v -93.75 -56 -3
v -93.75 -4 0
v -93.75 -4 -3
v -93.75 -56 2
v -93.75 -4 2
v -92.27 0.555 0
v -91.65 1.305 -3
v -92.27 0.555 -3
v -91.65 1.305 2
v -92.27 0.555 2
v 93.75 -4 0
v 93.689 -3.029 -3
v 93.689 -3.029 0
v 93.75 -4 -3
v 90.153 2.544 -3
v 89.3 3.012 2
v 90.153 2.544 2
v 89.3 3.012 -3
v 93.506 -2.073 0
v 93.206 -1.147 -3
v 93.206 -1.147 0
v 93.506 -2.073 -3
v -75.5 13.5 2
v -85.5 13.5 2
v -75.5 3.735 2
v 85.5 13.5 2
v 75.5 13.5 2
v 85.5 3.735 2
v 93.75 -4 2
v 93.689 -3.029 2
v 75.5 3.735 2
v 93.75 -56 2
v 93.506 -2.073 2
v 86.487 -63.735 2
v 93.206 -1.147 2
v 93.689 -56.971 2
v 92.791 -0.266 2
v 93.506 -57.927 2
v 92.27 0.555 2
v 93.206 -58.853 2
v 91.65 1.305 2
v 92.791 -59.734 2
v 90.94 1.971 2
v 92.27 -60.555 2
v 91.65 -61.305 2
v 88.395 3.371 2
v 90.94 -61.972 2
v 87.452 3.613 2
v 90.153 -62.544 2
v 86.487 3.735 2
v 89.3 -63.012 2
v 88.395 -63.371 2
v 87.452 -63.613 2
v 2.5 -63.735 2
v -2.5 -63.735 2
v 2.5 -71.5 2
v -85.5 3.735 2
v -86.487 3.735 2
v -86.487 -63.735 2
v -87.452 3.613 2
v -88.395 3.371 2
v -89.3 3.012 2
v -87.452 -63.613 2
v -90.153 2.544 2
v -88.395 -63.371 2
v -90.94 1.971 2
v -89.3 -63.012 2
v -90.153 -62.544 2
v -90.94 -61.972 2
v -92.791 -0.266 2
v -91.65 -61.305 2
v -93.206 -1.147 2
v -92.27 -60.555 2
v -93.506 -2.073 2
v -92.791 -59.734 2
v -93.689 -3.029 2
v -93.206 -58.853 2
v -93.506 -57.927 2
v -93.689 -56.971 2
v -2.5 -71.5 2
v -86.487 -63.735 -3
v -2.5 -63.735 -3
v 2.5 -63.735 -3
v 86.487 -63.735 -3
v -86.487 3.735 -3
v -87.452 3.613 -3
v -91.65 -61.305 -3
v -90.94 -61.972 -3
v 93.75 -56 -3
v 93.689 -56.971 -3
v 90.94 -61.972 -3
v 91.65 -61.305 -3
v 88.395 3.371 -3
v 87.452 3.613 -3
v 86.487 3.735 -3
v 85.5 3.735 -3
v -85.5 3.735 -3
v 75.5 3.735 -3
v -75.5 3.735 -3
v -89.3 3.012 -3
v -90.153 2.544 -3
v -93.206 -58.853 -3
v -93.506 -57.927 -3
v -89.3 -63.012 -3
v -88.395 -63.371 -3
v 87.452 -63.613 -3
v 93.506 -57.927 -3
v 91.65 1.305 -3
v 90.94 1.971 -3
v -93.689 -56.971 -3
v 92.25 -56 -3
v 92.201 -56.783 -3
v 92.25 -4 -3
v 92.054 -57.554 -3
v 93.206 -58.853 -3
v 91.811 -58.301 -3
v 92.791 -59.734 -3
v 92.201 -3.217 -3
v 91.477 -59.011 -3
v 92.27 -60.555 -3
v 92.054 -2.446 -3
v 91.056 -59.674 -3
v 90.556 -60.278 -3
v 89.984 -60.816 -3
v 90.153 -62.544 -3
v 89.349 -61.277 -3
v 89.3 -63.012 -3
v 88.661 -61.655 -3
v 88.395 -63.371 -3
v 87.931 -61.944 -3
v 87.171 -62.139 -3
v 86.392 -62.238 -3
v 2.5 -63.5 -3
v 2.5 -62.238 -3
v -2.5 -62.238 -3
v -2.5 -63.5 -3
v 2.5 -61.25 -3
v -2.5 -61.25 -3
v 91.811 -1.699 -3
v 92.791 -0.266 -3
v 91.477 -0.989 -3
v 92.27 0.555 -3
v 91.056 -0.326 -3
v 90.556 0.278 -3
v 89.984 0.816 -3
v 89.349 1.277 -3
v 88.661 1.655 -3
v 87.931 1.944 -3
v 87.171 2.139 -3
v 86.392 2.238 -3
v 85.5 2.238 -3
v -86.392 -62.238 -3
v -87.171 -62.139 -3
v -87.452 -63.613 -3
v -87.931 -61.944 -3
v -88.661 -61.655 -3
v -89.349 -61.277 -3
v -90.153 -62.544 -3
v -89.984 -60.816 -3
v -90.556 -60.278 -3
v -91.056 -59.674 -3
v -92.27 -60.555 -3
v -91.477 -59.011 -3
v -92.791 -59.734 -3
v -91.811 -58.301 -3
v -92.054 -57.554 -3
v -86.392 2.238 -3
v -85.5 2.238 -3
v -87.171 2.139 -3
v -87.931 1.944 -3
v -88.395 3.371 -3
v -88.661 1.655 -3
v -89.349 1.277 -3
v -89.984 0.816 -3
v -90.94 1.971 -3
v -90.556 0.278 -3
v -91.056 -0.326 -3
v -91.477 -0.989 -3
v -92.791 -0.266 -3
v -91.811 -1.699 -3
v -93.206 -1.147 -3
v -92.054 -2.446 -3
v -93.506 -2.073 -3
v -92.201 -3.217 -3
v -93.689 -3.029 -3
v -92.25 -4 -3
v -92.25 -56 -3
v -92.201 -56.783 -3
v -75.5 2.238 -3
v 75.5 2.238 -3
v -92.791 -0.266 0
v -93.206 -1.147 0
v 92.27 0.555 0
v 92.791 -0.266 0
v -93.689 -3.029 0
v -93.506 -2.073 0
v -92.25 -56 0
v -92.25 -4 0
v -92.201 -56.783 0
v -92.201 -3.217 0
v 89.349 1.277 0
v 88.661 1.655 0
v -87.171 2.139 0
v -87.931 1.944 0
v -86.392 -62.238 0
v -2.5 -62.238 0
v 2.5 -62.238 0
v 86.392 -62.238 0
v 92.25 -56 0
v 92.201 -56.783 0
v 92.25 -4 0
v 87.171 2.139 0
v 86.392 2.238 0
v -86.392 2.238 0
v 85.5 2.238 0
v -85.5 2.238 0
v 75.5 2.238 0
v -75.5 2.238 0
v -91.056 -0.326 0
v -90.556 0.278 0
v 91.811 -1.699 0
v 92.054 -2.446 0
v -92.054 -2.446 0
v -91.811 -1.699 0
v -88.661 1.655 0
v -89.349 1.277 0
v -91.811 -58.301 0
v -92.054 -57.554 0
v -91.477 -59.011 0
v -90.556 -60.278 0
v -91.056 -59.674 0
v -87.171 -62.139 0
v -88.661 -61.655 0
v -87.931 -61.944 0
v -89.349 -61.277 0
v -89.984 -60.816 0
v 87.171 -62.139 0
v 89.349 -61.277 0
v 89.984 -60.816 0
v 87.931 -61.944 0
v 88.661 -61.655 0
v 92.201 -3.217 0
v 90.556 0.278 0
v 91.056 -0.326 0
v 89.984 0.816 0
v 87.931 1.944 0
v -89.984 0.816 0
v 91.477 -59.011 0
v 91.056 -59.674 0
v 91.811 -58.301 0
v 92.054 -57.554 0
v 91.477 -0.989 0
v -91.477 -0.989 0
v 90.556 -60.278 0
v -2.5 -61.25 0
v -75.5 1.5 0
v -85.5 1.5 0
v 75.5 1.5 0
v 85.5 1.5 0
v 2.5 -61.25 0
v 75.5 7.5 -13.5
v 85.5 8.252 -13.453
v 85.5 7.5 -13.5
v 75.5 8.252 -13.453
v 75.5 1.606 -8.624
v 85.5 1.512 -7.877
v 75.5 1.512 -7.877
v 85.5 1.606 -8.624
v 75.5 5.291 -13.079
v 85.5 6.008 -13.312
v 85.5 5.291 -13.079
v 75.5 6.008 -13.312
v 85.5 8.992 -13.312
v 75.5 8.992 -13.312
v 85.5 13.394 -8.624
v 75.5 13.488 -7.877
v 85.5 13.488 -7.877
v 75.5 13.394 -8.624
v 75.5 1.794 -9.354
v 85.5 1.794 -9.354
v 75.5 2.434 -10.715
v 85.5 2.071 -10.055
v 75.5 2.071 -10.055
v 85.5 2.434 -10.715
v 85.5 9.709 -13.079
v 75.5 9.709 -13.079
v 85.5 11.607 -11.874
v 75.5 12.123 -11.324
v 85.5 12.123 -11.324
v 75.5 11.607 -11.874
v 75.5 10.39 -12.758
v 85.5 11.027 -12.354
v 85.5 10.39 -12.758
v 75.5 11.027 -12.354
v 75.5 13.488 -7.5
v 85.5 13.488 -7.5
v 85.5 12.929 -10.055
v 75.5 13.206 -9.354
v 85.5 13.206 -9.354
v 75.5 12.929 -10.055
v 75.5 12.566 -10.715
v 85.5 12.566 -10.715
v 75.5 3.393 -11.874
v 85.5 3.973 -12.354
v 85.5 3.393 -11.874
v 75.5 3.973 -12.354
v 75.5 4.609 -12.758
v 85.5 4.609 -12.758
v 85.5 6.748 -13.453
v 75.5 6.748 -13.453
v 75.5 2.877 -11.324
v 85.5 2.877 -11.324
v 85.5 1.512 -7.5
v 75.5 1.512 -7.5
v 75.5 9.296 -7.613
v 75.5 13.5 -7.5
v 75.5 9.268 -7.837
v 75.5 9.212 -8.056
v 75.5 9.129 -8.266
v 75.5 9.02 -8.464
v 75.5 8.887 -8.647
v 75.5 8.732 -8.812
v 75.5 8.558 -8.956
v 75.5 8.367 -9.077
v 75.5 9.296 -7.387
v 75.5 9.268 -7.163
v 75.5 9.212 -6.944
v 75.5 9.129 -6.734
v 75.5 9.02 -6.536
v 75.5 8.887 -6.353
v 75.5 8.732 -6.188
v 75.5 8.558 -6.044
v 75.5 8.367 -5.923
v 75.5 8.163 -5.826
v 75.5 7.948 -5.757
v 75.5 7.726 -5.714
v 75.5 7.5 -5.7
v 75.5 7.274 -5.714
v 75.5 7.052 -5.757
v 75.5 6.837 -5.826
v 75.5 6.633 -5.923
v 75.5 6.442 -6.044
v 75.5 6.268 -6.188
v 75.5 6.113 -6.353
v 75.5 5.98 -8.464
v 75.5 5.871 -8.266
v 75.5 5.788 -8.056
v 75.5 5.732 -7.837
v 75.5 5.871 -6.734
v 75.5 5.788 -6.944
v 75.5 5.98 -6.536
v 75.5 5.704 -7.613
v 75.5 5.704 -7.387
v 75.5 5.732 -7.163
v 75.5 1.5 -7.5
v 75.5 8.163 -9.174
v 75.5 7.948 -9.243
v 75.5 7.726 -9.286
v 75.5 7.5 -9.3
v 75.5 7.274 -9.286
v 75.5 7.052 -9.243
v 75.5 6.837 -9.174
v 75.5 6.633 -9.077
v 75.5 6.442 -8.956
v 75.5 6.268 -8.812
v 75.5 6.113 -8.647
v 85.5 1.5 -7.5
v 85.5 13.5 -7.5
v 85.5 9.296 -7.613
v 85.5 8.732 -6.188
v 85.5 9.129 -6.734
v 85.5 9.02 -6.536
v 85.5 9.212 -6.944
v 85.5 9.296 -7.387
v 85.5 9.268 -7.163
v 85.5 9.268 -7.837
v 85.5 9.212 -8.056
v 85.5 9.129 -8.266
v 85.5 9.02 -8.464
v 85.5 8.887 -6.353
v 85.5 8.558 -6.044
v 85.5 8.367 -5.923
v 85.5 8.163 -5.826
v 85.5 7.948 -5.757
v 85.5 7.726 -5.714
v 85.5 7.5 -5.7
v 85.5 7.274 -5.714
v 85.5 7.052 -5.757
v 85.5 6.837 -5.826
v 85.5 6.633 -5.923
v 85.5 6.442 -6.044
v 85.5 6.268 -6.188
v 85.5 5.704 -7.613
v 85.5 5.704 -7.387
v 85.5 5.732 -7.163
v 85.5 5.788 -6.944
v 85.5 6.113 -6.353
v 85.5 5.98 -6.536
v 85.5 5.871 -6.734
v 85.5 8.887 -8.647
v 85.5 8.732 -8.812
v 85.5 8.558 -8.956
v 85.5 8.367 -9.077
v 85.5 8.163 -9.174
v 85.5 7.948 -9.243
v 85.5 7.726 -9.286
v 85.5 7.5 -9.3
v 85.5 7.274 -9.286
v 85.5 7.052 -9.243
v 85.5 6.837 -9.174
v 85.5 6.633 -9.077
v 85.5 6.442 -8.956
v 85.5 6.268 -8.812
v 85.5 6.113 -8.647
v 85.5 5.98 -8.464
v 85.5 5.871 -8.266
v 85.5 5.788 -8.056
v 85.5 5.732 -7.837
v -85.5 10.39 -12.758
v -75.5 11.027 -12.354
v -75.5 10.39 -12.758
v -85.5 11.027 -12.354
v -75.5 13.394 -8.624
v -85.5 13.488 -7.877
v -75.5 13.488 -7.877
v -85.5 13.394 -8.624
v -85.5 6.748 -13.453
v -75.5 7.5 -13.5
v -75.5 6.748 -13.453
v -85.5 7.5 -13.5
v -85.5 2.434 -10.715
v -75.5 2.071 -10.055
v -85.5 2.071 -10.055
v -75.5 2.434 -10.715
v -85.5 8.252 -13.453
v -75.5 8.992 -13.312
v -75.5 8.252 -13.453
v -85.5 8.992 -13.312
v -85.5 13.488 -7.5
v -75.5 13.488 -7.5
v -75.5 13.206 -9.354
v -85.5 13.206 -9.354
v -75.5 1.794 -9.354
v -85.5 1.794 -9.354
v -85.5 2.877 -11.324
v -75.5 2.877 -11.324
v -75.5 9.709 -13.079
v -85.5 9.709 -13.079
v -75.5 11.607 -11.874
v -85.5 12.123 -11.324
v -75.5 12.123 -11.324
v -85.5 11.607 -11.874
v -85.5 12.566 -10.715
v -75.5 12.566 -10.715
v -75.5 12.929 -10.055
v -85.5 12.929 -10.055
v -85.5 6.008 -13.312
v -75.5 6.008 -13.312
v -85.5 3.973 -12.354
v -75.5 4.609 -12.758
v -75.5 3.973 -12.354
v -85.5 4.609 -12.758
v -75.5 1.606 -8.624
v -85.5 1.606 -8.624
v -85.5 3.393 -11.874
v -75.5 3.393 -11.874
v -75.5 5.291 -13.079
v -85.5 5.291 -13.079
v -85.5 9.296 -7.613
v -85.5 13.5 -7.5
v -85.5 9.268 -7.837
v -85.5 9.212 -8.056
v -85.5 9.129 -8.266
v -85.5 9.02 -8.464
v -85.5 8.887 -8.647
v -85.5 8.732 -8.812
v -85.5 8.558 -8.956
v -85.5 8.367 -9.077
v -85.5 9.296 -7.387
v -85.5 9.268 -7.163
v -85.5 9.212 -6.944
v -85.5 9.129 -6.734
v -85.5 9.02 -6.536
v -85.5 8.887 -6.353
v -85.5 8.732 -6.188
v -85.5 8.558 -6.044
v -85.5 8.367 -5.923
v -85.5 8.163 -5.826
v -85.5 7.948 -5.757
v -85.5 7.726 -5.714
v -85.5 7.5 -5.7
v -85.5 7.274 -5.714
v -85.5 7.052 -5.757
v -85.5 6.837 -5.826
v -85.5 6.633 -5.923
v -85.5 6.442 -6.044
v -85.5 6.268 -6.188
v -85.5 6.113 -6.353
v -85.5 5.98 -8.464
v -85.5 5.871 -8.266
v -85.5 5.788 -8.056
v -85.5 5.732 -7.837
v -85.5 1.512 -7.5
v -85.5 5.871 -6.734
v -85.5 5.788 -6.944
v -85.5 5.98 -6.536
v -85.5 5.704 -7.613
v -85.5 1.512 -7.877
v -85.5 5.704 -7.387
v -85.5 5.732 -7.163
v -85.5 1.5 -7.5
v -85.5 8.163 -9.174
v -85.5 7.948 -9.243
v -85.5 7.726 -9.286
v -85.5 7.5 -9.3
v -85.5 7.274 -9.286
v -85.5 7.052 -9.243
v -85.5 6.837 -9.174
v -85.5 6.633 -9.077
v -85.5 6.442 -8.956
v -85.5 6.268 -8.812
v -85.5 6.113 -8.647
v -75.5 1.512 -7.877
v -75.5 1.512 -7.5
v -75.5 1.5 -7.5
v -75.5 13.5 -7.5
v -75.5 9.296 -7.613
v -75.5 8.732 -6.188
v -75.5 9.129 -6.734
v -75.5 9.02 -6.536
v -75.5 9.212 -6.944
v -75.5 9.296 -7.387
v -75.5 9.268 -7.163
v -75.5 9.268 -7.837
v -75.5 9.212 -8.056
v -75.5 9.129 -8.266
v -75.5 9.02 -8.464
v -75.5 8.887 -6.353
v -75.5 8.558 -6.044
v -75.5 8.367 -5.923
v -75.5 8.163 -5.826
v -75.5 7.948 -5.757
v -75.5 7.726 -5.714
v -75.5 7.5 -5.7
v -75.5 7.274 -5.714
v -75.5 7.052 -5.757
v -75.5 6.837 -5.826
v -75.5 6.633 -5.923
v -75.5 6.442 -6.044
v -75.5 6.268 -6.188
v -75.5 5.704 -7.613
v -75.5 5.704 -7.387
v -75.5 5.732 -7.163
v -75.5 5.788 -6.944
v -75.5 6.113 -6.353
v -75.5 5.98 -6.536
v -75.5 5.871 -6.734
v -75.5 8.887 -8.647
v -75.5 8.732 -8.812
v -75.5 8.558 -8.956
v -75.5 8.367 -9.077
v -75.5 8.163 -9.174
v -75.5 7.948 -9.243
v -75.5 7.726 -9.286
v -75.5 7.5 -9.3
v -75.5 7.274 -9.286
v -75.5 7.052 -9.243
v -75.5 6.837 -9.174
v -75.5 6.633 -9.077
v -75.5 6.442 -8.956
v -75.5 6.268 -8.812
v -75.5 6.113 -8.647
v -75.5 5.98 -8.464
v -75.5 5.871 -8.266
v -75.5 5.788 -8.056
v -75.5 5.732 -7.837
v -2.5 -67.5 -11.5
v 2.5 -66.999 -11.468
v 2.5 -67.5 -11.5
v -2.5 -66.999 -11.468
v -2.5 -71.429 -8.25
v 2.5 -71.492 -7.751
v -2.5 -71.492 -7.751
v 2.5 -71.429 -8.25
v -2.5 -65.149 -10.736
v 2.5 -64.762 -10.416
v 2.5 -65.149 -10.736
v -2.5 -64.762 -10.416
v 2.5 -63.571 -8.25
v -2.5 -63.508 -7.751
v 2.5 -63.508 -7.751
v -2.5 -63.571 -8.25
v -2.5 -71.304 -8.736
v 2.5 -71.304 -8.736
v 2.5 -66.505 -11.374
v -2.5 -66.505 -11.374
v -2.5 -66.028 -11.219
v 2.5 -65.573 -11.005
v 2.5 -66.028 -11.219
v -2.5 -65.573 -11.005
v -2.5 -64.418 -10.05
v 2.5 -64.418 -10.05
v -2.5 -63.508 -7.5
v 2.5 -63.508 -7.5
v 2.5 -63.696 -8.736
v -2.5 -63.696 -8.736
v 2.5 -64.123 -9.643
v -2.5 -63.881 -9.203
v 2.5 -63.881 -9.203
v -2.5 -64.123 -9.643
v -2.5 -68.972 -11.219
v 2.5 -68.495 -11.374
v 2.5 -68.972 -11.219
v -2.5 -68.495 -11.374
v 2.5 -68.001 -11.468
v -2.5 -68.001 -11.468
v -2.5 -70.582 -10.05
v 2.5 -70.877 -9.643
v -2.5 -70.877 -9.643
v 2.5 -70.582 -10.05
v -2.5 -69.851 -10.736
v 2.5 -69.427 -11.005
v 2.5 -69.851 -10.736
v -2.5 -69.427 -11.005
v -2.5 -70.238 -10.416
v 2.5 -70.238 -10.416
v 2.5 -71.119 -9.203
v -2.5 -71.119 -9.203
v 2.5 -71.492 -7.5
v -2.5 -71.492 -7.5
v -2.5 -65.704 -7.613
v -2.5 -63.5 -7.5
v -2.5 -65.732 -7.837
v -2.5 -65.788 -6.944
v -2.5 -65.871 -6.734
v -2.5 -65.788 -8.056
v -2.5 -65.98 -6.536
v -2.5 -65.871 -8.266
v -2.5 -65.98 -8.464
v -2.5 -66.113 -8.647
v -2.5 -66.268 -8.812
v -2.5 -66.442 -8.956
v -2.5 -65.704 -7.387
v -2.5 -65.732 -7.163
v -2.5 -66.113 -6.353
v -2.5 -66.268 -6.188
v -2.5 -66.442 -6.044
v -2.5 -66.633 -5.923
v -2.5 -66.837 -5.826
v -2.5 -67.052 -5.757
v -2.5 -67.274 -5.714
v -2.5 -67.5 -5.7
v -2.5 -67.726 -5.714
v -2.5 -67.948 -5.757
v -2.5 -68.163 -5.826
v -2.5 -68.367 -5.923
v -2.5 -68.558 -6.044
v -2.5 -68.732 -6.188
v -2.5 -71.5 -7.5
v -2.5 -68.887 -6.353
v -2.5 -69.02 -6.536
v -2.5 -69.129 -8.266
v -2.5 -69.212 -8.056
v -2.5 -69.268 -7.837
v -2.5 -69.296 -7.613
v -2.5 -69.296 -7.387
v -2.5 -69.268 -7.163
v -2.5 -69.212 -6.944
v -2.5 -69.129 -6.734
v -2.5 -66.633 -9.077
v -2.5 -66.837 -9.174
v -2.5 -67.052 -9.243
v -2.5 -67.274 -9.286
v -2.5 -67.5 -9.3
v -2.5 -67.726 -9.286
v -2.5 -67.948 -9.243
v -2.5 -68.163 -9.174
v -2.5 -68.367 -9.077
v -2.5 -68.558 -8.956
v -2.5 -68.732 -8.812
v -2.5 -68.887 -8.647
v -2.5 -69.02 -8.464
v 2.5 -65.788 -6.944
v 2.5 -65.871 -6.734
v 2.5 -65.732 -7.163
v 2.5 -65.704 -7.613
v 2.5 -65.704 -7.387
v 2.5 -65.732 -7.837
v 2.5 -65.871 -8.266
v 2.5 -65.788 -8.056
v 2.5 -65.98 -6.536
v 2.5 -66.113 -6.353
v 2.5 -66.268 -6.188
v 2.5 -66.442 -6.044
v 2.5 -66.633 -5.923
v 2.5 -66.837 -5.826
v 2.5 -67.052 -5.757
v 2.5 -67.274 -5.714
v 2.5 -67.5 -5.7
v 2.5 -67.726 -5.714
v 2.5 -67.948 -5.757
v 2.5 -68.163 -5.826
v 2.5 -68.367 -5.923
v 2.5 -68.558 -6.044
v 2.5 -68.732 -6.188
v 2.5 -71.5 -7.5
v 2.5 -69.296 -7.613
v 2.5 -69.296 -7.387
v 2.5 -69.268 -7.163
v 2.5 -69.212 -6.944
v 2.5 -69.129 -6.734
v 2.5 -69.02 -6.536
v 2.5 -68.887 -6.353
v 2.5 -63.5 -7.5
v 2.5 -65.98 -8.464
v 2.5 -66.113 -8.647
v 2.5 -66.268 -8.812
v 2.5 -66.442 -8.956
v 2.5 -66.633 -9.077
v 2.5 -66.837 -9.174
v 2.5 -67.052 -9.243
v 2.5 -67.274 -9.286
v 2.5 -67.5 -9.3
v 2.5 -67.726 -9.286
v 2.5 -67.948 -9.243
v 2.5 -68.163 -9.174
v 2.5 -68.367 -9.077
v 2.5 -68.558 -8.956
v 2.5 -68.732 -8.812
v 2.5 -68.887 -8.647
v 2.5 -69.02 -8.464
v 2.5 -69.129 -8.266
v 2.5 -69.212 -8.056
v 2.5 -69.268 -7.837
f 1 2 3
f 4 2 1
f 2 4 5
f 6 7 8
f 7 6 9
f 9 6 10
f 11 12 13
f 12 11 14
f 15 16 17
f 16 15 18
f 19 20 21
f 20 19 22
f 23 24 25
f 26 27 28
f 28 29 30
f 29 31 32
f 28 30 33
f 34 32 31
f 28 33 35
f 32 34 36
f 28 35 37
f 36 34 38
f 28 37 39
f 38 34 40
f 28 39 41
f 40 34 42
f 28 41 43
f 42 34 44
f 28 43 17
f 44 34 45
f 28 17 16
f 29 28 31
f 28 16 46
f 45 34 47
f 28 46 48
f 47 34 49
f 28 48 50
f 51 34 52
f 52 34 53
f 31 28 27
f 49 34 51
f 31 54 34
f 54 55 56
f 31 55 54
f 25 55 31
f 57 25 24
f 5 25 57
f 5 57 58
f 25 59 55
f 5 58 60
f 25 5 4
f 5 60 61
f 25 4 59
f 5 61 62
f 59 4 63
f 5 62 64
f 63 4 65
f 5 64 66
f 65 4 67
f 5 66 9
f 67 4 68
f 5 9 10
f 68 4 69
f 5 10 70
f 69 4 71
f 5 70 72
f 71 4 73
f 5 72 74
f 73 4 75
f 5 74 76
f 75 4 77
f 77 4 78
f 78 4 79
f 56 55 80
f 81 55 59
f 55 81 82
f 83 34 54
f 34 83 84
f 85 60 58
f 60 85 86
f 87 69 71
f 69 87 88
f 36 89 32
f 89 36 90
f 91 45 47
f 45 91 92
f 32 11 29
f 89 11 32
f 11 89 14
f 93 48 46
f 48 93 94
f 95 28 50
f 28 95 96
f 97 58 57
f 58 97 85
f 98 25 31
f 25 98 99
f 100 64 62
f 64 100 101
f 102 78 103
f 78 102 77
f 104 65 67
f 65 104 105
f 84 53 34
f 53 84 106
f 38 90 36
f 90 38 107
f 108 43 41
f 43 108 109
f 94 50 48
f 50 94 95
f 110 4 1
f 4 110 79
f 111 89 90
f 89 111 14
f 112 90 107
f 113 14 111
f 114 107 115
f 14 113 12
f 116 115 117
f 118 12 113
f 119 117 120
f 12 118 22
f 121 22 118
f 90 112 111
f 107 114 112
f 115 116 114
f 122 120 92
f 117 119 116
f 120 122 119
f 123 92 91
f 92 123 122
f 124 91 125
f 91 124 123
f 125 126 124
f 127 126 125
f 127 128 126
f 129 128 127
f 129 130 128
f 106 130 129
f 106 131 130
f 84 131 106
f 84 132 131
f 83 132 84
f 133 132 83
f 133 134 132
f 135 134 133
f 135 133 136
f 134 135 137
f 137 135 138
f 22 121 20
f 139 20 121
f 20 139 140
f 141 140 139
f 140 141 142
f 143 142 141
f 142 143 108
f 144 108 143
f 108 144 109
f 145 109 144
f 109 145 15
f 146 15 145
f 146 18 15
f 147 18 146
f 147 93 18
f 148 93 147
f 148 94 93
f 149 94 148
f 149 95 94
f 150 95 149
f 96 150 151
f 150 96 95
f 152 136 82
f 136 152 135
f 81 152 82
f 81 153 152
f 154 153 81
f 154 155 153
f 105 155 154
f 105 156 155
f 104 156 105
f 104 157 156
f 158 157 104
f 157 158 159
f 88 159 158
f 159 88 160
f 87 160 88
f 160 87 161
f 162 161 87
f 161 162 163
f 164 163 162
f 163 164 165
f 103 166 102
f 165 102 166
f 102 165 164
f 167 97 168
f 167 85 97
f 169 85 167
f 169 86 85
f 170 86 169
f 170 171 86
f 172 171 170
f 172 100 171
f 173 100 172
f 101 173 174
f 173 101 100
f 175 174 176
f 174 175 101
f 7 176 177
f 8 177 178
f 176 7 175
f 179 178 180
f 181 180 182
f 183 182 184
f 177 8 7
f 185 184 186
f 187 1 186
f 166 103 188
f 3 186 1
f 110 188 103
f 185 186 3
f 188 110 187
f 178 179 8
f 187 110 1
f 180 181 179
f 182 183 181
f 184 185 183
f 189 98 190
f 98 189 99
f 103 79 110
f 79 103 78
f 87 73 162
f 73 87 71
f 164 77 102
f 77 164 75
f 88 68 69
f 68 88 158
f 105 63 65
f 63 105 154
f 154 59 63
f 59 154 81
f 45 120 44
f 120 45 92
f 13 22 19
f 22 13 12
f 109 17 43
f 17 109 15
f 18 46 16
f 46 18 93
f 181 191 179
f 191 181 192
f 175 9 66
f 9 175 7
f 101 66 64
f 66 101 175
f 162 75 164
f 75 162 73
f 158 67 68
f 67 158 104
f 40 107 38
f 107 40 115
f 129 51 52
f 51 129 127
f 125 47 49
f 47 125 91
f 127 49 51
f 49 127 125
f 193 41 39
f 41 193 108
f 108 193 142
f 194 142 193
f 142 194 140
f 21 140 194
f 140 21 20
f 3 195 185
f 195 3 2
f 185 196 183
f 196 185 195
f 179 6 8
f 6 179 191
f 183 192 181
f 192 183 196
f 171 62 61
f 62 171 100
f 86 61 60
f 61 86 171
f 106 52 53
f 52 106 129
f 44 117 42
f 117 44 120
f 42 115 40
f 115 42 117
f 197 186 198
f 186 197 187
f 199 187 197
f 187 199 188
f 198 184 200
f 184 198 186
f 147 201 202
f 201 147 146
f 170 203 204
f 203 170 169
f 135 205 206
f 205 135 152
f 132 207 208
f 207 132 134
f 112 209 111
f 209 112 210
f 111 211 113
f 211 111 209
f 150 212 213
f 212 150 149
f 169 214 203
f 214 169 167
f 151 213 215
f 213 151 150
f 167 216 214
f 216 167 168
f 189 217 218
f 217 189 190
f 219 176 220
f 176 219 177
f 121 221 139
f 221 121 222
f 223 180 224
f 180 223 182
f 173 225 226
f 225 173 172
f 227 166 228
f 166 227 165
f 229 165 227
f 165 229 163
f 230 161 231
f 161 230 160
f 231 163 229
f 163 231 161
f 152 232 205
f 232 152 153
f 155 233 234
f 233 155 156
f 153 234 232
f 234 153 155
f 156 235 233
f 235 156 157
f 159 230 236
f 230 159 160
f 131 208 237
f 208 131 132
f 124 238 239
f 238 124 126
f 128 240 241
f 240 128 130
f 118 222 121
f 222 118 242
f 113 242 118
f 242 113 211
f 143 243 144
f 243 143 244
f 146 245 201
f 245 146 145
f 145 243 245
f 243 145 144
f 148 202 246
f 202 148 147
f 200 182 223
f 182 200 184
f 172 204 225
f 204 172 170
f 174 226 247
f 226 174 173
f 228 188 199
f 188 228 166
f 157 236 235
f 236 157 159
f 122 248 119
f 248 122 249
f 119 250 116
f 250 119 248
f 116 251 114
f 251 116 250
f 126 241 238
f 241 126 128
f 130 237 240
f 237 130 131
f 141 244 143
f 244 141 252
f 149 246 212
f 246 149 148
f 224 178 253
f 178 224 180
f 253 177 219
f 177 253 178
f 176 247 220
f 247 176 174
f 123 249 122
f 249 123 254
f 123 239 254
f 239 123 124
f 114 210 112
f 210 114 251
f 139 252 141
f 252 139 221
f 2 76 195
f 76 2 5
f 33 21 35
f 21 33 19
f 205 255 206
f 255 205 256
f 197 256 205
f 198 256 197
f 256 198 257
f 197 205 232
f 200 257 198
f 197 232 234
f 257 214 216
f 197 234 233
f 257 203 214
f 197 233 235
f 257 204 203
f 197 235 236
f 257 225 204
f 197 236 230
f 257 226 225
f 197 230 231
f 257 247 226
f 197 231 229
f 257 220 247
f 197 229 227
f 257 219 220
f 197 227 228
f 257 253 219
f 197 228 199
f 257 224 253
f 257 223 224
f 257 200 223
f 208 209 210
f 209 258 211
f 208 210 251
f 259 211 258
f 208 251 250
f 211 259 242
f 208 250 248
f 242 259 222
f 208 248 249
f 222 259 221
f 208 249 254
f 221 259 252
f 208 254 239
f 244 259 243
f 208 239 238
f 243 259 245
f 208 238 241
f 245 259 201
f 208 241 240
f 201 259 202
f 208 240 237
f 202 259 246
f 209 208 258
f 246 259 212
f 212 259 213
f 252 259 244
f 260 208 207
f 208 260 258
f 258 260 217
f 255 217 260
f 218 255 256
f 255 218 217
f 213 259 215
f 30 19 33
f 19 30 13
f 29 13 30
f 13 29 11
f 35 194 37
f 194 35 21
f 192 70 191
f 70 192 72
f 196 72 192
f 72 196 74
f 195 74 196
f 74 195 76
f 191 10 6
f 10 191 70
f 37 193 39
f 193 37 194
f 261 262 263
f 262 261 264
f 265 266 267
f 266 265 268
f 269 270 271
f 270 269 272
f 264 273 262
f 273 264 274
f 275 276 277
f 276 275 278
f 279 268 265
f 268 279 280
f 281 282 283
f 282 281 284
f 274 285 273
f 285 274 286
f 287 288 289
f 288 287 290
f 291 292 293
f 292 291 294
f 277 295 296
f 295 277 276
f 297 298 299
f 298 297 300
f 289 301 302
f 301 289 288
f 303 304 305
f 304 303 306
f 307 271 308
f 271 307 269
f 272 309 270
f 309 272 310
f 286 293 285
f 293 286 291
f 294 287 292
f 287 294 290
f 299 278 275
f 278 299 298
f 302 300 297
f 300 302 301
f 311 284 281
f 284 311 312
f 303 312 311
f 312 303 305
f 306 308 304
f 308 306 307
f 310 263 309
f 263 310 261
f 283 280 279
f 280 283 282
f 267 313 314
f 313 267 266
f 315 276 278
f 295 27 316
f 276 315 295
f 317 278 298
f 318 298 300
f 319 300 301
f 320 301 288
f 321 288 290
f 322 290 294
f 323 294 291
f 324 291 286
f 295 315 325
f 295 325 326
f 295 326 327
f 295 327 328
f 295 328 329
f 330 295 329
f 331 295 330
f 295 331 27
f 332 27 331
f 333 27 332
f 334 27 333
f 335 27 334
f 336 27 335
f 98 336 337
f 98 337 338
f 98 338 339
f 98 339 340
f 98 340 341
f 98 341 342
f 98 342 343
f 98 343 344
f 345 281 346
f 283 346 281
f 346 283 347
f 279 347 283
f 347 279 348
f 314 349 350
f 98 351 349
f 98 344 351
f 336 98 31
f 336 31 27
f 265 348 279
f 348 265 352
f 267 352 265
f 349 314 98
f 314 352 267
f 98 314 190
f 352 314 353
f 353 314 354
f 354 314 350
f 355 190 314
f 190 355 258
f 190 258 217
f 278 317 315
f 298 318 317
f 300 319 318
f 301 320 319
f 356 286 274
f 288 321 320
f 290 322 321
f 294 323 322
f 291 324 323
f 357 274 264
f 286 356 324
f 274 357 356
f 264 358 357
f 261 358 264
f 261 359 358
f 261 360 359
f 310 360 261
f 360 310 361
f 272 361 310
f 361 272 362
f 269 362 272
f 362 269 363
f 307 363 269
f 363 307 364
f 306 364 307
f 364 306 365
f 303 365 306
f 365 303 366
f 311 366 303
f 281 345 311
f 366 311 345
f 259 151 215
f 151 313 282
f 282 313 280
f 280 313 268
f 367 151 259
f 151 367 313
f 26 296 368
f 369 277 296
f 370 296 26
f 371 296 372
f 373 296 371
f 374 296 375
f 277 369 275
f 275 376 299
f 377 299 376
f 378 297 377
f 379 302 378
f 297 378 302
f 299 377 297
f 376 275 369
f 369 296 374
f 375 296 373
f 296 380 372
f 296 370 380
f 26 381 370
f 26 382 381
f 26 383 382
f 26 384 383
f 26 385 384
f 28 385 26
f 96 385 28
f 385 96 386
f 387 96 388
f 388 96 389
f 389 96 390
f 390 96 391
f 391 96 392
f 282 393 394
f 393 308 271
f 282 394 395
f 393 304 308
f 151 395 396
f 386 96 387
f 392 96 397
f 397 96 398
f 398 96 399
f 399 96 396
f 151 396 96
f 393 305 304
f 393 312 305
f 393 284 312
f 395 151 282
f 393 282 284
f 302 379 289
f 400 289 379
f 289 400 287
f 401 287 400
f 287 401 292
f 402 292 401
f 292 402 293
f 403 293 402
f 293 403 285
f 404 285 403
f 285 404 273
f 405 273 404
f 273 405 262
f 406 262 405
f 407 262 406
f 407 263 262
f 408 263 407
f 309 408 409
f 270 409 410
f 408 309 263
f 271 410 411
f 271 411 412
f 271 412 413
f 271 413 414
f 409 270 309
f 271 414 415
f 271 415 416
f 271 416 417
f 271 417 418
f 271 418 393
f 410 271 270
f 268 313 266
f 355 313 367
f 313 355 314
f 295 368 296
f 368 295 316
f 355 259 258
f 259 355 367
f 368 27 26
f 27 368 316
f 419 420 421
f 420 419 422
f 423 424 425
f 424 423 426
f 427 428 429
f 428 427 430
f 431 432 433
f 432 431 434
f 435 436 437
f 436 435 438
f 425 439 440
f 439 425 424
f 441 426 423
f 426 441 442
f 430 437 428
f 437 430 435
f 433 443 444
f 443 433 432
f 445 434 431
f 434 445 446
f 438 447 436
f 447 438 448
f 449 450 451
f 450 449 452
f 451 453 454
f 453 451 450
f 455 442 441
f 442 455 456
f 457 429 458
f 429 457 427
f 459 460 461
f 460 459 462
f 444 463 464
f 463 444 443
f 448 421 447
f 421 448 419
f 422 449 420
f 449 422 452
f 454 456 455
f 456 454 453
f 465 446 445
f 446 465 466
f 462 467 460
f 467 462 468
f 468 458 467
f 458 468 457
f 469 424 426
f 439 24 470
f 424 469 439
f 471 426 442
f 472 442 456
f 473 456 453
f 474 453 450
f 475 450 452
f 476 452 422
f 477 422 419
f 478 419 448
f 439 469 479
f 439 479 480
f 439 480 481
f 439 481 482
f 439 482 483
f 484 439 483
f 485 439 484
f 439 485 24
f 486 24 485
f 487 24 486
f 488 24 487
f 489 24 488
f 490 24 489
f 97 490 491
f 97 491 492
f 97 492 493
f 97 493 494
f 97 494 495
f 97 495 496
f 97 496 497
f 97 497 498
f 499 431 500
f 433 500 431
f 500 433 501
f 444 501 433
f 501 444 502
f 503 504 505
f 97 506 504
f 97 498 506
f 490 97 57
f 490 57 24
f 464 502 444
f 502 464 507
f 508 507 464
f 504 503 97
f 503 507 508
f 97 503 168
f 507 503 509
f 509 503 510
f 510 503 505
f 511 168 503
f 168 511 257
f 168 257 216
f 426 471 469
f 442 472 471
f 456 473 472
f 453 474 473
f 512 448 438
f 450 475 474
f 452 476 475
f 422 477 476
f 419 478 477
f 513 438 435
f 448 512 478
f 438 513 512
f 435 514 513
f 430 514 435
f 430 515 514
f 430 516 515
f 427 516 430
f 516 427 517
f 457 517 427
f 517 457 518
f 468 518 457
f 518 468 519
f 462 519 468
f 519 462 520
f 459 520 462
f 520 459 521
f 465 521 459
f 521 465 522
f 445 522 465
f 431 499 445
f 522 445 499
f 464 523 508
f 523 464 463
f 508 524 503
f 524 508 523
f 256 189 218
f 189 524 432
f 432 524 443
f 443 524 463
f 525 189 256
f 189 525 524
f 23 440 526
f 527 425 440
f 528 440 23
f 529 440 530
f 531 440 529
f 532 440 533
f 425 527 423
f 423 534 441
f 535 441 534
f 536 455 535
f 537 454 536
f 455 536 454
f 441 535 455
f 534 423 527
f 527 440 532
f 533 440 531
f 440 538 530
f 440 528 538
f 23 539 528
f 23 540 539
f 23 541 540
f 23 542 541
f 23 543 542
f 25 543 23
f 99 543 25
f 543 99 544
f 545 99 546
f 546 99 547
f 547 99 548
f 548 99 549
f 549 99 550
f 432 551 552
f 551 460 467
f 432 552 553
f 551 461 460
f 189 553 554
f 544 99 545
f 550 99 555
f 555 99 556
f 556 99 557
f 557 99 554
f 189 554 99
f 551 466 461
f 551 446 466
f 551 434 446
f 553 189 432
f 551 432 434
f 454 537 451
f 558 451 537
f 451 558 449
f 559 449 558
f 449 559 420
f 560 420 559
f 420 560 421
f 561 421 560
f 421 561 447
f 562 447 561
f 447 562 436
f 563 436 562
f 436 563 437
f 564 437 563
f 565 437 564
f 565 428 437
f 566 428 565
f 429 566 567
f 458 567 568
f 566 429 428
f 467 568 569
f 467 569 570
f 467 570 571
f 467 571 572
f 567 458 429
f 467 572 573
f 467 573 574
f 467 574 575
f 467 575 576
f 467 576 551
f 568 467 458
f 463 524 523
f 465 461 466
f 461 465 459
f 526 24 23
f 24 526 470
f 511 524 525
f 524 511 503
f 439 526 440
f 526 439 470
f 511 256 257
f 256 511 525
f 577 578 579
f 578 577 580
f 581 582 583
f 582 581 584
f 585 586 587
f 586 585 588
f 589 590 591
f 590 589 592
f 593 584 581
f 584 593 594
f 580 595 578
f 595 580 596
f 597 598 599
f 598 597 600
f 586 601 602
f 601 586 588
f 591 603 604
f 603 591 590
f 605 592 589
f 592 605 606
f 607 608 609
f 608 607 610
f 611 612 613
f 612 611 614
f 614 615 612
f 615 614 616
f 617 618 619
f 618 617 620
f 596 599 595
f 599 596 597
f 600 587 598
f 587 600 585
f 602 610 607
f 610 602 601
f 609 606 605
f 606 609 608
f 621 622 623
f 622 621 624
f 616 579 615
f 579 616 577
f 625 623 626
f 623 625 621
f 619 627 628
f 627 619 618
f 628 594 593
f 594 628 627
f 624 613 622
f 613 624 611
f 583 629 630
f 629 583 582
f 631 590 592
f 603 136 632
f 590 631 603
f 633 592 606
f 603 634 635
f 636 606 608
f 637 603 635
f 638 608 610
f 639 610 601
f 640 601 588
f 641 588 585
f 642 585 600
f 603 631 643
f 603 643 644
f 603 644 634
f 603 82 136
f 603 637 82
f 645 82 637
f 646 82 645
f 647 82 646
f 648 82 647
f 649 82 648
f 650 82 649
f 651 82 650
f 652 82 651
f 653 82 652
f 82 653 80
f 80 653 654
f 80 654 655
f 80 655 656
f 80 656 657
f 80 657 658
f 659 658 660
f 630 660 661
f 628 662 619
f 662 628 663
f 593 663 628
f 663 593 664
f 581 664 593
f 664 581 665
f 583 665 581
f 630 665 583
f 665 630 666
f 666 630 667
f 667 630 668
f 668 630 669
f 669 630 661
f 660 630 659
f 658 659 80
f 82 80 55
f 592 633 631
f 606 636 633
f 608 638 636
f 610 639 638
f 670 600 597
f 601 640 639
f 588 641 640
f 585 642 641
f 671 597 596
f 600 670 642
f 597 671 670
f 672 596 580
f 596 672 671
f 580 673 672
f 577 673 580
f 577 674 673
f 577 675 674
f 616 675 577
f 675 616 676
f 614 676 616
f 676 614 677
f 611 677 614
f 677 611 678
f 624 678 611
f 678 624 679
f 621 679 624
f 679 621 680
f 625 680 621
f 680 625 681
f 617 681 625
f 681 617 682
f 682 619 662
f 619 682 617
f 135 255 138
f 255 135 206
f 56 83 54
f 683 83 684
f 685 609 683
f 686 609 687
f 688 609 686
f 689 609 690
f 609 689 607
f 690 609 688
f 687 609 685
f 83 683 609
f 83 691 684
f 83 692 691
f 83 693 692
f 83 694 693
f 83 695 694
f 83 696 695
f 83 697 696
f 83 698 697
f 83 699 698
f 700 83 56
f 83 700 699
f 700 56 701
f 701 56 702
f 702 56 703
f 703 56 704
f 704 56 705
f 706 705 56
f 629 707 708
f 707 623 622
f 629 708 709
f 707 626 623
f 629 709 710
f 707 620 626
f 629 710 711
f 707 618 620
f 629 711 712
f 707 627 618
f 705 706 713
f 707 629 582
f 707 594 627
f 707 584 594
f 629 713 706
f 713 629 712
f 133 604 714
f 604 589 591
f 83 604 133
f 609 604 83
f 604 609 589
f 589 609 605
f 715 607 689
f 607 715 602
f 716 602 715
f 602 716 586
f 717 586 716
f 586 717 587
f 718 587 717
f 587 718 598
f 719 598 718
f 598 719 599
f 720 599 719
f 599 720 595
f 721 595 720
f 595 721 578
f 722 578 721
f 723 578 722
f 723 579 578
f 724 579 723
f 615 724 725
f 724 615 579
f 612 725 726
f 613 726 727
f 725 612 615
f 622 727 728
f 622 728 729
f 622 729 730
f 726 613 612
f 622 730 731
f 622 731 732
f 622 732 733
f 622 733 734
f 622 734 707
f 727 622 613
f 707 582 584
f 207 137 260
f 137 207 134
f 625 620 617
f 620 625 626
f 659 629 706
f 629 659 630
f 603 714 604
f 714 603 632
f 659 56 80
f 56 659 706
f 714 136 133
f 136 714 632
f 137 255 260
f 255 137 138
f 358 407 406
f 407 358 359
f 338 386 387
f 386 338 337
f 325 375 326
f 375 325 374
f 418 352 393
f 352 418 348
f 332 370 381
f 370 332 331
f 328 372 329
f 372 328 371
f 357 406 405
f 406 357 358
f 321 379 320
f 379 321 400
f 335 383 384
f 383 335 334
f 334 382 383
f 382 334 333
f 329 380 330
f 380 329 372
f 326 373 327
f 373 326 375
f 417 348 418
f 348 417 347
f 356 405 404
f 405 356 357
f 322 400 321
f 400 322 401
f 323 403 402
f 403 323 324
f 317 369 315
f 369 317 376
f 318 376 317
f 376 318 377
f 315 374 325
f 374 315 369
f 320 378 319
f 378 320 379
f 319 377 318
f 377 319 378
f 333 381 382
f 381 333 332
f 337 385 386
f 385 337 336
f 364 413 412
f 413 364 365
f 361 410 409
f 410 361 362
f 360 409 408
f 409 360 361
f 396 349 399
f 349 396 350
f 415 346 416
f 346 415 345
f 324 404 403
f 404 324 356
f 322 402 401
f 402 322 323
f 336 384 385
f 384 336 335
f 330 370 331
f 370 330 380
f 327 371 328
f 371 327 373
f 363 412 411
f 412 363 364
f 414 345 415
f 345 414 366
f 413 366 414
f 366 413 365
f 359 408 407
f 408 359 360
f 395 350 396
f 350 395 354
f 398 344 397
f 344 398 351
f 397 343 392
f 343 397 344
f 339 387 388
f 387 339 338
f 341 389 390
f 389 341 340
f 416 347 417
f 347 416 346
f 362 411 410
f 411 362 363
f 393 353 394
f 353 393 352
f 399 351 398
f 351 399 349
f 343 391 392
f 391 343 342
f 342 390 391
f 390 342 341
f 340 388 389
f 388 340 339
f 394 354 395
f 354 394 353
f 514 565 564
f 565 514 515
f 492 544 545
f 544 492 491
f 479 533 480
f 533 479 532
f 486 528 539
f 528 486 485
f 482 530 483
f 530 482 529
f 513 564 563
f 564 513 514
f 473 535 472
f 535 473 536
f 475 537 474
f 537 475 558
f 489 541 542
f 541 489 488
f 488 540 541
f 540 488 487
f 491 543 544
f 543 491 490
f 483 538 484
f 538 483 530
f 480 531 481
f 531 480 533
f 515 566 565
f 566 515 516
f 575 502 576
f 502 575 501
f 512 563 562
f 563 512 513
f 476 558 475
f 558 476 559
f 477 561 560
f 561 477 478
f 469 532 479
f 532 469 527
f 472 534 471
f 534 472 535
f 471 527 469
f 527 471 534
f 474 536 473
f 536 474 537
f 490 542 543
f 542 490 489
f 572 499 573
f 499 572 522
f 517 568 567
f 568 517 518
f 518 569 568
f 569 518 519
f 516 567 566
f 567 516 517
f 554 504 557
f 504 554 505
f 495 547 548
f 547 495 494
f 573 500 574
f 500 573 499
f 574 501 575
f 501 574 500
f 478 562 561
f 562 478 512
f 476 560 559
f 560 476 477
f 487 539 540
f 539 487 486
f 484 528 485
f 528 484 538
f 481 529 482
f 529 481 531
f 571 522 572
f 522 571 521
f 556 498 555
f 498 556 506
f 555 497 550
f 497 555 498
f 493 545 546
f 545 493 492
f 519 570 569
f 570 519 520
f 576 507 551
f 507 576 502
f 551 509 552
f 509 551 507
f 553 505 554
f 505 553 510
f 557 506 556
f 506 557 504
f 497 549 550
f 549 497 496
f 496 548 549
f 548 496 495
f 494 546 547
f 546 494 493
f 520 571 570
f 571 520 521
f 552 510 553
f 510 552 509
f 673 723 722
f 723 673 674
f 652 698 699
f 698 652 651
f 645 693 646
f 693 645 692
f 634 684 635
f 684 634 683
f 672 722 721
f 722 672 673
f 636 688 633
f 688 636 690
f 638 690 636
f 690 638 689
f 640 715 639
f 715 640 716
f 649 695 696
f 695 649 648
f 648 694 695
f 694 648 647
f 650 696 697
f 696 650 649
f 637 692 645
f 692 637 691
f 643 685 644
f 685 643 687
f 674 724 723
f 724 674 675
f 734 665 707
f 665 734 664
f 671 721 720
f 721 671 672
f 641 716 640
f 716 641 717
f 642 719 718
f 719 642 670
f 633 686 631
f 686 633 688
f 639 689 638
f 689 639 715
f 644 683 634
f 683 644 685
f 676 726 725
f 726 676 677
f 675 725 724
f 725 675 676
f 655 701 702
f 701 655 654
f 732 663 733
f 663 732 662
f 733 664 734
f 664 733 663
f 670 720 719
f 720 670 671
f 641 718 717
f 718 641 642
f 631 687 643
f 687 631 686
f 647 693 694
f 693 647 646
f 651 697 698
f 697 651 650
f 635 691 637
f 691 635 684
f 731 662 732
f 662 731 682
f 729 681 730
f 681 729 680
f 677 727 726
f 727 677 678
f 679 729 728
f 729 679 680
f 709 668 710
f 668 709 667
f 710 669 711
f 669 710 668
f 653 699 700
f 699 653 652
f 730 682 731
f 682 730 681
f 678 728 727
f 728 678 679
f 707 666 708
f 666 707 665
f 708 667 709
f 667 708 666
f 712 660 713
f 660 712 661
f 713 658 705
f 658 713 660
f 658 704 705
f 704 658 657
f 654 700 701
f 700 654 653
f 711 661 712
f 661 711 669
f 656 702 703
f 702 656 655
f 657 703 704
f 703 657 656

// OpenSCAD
$fn = 50;


difference() {
	union() {
		translate(v = [0, -30.0000000000, -3]) {
			rotate(a = [0, 0, 0]) {
				difference() {
					union() {
						hull() {
							translate(v = [-86.0000000000, 26.0000000000, 0]) {
								cylinder(h = 5, r = 7.7500000000);
							}
							translate(v = [86.0000000000, 26.0000000000, 0]) {
								cylinder(h = 5, r = 7.7500000000);
							}
							translate(v = [-86.0000000000, -26.0000000000, 0]) {
								cylinder(h = 5, r = 7.7500000000);
							}
							translate(v = [86.0000000000, -26.0000000000, 0]) {
								cylinder(h = 5, r = 7.7500000000);
							}
						}
					}
					union() {
						hull() {
							translate(v = [-86.0000000000, 26.0000000000, 0]) {
								cylinder(h = 5, r = 6.2500000000);
							}
							translate(v = [86.0000000000, 26.0000000000, 0]) {
								cylinder(h = 5, r = 6.2500000000);
							}
							translate(v = [-86.0000000000, -26.0000000000, 0]) {
								cylinder(h = 5, r = 6.2500000000);
							}
							translate(v = [86.0000000000, -26.0000000000, 0]) {
								cylinder(h = 5, r = 6.2500000000);
							}
						}
					}
				}
			}
		}
		translate(v = [0, -30.0000000000, 0]) {
			hull() {
				translate(v = [-86.0000000000, 26.0000000000, 0]) {
					cylinder(h = 2, r = 7.7500000000);
				}
				translate(v = [86.0000000000, 26.0000000000, 0]) {
					cylinder(h = 2, r = 7.7500000000);
				}
				translate(v = [-86.0000000000, -26.0000000000, 0]) {
					cylinder(h = 2, r = 7.7500000000);
				}
				translate(v = [86.0000000000, -26.0000000000, 0]) {
					cylinder(h = 2, r = 7.7500000000);
				}
			}
		}
		translate(v = [75.5000000000, 7.5000000000, -7.5000000000]) {
			rotate(a = [0, 90, 0]) {
				cylinder(h = 10, r = 6.0000000000);
			}
		}
		translate(v = [75.5000000000, 1.5000000000, -7.5000000000]) {
			cube(size = [10, 12, 7.5000000000]);
		}
		translate(v = [75.5000000000, -15.0000000000, 0.0000000000]) {
			cube(size = [10, 28.5000000000, 2]);
		}
		translate(v = [-85.5000000000, 7.5000000000, -7.5000000000]) {
			rotate(a = [0, 90, 0]) {
				cylinder(h = 10, r = 6.0000000000);
			}
		}
		translate(v = [-85.5000000000, 1.5000000000, -7.5000000000]) {
			cube(size = [10, 12, 7.5000000000]);
		}
		translate(v = [-85.5000000000, -15.0000000000, 0.0000000000]) {
			cube(size = [10, 28.5000000000, 2]);
		}
		translate(v = [-2.5000000000, -67.5000000000, -7.5000000000]) {
			rotate(a = [0, 90, 0]) {
				cylinder(h = 5, r = 4.0000000000);
			}
		}
		translate(v = [-2.5000000000, -71.5000000000, -7.5000000000]) {
			cube(size = [5, 8, 7.5000000000]);
		}
		translate(v = [-2.5000000000, -71.5000000000, -3.0000000000]) {
			cube(size = [5, 10.2500000000, 5]);
		}
	}
	union() {
		translate(v = [75.5000000000, 7.5000000000, -7.5000000000]) {
			rotate(a = [0, 90, 0]) {
				cylinder(h = 10, r = 1.8000000000);
			}
		}
		translate(v = [-85.5000000000, 7.5000000000, -7.5000000000]) {
			rotate(a = [0, 90, 0]) {
				cylinder(h = 10, r = 1.8000000000);
			}
		}
		translate(v = [-5.0000000000, -67.5000000000, -7.5000000000]) {
			rotate(a = [0, 90, 0]) {
				cylinder(h = 10, r = 1.8000000000);
			}
		}
	}
}
